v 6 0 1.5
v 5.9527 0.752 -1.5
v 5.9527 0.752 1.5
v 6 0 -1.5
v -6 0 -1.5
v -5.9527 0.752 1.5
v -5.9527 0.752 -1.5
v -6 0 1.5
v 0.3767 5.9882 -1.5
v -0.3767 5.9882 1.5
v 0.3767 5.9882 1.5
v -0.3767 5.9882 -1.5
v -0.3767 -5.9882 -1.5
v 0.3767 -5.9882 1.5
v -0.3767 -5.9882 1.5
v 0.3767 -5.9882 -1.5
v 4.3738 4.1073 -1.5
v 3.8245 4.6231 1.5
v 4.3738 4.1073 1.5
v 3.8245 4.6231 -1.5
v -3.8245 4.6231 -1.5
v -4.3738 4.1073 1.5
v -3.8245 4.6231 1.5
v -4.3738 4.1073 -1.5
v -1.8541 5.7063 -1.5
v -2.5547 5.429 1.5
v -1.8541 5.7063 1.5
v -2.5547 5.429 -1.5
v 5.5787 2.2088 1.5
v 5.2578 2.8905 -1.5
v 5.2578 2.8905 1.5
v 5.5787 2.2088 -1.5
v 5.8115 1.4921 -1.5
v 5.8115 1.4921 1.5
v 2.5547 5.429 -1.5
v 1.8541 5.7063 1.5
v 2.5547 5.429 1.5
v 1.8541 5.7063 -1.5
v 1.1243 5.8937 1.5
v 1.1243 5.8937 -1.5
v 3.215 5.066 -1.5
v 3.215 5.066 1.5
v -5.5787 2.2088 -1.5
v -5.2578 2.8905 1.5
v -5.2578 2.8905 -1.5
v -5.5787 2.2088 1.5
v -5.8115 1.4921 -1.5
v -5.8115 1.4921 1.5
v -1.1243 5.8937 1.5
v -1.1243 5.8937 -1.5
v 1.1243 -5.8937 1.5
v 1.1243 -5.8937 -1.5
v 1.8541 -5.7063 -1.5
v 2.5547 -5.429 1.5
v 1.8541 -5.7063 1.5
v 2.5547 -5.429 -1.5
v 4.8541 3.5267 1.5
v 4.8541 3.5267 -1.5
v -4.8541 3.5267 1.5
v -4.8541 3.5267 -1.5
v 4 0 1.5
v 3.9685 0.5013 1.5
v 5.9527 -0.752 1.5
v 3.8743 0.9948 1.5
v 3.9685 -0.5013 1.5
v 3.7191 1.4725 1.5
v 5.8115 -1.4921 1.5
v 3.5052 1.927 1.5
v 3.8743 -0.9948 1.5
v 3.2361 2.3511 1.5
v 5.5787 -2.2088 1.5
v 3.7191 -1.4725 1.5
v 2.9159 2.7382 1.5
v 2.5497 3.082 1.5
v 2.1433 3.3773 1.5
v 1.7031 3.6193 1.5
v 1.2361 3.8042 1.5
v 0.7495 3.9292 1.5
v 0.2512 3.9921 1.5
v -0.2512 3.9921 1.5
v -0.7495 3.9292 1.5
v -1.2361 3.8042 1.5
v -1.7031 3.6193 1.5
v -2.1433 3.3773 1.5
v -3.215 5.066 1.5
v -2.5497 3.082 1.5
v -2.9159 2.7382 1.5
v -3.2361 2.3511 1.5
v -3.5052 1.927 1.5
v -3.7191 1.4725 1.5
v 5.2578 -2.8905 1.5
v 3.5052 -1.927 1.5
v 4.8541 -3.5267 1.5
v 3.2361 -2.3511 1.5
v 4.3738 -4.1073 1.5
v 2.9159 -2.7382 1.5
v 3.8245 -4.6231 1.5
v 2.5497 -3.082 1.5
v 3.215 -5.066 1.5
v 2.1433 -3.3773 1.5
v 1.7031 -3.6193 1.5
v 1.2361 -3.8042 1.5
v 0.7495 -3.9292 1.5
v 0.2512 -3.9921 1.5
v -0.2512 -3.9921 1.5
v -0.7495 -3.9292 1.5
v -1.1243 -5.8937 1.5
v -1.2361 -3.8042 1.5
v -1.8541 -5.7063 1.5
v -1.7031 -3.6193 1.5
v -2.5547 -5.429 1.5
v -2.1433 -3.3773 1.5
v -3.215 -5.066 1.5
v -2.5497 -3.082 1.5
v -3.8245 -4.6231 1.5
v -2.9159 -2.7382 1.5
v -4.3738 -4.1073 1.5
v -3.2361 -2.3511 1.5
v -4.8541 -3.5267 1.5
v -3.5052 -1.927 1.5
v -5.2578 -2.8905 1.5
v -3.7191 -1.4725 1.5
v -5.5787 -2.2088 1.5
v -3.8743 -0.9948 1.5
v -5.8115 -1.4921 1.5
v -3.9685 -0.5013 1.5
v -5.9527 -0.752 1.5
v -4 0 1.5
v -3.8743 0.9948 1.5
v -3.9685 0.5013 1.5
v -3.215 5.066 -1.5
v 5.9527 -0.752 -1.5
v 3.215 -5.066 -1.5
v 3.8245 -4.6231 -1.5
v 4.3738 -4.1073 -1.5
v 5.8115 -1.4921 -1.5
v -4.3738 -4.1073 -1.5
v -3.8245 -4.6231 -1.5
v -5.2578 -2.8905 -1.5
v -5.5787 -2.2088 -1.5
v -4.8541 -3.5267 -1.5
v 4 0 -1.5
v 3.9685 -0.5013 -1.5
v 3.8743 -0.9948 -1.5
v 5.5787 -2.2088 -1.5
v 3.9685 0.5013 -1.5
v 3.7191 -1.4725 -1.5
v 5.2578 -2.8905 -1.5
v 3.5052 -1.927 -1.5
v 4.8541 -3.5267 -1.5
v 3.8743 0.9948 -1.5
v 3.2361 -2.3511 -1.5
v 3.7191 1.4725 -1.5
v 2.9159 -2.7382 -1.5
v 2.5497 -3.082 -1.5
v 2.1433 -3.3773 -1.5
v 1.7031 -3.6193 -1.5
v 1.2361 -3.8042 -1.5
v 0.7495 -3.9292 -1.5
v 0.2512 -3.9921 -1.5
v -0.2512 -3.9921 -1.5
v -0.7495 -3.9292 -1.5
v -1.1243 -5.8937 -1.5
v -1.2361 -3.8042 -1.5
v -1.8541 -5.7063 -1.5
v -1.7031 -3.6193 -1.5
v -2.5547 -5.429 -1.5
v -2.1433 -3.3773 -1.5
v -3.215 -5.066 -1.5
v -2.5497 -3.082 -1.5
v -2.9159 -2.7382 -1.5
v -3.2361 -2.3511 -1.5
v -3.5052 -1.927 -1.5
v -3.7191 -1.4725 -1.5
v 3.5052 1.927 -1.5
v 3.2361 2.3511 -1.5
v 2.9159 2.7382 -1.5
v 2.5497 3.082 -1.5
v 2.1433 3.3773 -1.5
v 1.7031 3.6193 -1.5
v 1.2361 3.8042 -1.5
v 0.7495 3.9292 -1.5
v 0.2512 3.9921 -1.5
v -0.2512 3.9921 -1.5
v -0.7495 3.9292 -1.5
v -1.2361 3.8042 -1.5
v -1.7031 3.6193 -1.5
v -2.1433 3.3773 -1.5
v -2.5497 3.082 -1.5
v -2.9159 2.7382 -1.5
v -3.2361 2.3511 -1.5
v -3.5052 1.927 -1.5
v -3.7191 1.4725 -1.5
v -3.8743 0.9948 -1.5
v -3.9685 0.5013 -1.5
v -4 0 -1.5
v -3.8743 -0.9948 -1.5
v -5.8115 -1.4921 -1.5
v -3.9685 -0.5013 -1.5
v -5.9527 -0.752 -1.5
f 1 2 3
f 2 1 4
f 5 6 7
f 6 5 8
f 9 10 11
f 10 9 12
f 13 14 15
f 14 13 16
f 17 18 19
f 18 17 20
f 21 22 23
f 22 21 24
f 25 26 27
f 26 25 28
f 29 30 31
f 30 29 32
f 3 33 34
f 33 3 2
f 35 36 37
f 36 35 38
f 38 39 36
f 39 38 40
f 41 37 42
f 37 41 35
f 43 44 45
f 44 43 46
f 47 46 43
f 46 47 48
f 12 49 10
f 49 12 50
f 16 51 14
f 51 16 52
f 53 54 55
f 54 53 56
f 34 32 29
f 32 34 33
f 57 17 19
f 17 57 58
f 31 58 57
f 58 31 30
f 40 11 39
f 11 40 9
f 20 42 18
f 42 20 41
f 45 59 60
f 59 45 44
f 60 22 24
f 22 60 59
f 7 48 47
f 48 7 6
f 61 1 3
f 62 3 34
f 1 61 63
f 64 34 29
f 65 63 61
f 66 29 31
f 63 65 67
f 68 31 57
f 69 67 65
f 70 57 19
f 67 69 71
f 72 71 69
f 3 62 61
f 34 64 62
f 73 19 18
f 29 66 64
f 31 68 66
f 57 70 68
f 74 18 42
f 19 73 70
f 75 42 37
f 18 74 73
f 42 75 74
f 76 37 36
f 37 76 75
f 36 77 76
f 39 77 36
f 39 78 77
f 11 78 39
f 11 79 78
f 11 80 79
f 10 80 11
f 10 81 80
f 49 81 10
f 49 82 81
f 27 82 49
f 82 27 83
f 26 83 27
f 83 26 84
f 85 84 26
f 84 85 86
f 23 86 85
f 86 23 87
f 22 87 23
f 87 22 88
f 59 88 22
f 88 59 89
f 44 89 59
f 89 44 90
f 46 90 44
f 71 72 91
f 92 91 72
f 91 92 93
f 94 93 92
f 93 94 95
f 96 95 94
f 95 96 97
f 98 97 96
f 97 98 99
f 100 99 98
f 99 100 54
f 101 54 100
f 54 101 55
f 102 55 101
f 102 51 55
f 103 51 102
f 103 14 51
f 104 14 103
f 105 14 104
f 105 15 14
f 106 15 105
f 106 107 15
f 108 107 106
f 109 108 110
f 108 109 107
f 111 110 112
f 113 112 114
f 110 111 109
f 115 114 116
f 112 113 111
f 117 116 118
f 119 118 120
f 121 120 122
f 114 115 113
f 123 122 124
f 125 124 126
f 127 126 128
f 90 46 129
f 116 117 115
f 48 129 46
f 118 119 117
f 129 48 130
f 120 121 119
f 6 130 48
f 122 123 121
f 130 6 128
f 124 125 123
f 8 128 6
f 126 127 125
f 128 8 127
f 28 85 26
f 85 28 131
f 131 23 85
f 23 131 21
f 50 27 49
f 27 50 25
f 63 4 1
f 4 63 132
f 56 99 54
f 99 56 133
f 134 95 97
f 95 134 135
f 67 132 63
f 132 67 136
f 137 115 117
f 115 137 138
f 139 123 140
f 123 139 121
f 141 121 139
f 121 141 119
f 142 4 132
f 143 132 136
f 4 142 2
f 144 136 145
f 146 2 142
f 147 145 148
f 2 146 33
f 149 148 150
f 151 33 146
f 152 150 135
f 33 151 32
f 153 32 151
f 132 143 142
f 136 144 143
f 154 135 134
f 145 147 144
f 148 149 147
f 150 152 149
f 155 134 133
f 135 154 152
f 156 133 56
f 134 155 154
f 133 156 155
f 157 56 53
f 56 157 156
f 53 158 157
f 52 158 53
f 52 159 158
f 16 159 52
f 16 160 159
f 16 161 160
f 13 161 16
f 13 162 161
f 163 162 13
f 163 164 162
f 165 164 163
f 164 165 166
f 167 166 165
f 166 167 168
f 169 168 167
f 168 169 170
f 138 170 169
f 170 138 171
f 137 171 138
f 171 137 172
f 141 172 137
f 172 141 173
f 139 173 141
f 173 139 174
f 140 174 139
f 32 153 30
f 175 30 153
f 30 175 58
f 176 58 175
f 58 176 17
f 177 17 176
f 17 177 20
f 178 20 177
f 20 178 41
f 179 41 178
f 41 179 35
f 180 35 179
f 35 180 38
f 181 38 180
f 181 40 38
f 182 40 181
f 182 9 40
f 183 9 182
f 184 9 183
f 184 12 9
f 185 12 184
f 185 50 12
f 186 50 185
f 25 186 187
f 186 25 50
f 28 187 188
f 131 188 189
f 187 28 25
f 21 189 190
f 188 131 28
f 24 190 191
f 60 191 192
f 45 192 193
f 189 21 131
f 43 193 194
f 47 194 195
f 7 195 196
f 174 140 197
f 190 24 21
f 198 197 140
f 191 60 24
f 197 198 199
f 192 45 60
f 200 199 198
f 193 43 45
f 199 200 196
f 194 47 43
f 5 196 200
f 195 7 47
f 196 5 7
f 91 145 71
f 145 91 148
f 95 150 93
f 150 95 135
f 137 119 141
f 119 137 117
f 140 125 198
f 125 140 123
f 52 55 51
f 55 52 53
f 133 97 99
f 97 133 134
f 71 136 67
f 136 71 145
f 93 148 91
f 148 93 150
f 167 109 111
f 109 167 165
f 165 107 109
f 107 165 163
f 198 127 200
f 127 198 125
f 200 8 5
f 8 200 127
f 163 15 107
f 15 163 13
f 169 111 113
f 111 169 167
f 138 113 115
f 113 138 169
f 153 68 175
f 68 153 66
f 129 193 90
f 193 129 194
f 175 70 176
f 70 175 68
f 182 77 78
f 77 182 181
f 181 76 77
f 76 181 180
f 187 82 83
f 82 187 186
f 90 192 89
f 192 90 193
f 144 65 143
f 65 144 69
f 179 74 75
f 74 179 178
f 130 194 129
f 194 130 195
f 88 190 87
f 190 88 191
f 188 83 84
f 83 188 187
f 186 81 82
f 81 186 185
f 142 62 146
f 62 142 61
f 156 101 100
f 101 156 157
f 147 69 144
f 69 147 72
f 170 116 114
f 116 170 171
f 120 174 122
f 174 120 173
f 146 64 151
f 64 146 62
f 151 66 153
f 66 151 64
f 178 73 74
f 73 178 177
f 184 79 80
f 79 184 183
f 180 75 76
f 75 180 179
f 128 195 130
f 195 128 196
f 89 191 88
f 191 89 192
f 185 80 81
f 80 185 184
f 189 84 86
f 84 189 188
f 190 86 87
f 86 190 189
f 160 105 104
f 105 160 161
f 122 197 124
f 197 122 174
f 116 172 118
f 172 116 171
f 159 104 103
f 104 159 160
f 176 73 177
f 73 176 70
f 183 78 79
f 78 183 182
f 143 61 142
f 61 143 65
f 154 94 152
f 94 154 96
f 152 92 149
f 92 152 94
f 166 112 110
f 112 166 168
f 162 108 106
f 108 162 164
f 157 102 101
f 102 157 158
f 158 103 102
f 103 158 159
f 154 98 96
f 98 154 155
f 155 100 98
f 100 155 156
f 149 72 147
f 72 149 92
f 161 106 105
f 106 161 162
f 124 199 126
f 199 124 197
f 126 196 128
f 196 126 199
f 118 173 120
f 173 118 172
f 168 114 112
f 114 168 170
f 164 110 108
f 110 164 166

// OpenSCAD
$fn = 50;


difference() {
	union() {
		translate(v = [0, 0, -1.5000000000]) {
			cylinder(h = 3, r = 6.0000000000);
		}
	}
	union() {
		translate(v = [0, 0, -100.0000000000]) {
			cylinder(h = 200, r = 4);
		}
	}
}
